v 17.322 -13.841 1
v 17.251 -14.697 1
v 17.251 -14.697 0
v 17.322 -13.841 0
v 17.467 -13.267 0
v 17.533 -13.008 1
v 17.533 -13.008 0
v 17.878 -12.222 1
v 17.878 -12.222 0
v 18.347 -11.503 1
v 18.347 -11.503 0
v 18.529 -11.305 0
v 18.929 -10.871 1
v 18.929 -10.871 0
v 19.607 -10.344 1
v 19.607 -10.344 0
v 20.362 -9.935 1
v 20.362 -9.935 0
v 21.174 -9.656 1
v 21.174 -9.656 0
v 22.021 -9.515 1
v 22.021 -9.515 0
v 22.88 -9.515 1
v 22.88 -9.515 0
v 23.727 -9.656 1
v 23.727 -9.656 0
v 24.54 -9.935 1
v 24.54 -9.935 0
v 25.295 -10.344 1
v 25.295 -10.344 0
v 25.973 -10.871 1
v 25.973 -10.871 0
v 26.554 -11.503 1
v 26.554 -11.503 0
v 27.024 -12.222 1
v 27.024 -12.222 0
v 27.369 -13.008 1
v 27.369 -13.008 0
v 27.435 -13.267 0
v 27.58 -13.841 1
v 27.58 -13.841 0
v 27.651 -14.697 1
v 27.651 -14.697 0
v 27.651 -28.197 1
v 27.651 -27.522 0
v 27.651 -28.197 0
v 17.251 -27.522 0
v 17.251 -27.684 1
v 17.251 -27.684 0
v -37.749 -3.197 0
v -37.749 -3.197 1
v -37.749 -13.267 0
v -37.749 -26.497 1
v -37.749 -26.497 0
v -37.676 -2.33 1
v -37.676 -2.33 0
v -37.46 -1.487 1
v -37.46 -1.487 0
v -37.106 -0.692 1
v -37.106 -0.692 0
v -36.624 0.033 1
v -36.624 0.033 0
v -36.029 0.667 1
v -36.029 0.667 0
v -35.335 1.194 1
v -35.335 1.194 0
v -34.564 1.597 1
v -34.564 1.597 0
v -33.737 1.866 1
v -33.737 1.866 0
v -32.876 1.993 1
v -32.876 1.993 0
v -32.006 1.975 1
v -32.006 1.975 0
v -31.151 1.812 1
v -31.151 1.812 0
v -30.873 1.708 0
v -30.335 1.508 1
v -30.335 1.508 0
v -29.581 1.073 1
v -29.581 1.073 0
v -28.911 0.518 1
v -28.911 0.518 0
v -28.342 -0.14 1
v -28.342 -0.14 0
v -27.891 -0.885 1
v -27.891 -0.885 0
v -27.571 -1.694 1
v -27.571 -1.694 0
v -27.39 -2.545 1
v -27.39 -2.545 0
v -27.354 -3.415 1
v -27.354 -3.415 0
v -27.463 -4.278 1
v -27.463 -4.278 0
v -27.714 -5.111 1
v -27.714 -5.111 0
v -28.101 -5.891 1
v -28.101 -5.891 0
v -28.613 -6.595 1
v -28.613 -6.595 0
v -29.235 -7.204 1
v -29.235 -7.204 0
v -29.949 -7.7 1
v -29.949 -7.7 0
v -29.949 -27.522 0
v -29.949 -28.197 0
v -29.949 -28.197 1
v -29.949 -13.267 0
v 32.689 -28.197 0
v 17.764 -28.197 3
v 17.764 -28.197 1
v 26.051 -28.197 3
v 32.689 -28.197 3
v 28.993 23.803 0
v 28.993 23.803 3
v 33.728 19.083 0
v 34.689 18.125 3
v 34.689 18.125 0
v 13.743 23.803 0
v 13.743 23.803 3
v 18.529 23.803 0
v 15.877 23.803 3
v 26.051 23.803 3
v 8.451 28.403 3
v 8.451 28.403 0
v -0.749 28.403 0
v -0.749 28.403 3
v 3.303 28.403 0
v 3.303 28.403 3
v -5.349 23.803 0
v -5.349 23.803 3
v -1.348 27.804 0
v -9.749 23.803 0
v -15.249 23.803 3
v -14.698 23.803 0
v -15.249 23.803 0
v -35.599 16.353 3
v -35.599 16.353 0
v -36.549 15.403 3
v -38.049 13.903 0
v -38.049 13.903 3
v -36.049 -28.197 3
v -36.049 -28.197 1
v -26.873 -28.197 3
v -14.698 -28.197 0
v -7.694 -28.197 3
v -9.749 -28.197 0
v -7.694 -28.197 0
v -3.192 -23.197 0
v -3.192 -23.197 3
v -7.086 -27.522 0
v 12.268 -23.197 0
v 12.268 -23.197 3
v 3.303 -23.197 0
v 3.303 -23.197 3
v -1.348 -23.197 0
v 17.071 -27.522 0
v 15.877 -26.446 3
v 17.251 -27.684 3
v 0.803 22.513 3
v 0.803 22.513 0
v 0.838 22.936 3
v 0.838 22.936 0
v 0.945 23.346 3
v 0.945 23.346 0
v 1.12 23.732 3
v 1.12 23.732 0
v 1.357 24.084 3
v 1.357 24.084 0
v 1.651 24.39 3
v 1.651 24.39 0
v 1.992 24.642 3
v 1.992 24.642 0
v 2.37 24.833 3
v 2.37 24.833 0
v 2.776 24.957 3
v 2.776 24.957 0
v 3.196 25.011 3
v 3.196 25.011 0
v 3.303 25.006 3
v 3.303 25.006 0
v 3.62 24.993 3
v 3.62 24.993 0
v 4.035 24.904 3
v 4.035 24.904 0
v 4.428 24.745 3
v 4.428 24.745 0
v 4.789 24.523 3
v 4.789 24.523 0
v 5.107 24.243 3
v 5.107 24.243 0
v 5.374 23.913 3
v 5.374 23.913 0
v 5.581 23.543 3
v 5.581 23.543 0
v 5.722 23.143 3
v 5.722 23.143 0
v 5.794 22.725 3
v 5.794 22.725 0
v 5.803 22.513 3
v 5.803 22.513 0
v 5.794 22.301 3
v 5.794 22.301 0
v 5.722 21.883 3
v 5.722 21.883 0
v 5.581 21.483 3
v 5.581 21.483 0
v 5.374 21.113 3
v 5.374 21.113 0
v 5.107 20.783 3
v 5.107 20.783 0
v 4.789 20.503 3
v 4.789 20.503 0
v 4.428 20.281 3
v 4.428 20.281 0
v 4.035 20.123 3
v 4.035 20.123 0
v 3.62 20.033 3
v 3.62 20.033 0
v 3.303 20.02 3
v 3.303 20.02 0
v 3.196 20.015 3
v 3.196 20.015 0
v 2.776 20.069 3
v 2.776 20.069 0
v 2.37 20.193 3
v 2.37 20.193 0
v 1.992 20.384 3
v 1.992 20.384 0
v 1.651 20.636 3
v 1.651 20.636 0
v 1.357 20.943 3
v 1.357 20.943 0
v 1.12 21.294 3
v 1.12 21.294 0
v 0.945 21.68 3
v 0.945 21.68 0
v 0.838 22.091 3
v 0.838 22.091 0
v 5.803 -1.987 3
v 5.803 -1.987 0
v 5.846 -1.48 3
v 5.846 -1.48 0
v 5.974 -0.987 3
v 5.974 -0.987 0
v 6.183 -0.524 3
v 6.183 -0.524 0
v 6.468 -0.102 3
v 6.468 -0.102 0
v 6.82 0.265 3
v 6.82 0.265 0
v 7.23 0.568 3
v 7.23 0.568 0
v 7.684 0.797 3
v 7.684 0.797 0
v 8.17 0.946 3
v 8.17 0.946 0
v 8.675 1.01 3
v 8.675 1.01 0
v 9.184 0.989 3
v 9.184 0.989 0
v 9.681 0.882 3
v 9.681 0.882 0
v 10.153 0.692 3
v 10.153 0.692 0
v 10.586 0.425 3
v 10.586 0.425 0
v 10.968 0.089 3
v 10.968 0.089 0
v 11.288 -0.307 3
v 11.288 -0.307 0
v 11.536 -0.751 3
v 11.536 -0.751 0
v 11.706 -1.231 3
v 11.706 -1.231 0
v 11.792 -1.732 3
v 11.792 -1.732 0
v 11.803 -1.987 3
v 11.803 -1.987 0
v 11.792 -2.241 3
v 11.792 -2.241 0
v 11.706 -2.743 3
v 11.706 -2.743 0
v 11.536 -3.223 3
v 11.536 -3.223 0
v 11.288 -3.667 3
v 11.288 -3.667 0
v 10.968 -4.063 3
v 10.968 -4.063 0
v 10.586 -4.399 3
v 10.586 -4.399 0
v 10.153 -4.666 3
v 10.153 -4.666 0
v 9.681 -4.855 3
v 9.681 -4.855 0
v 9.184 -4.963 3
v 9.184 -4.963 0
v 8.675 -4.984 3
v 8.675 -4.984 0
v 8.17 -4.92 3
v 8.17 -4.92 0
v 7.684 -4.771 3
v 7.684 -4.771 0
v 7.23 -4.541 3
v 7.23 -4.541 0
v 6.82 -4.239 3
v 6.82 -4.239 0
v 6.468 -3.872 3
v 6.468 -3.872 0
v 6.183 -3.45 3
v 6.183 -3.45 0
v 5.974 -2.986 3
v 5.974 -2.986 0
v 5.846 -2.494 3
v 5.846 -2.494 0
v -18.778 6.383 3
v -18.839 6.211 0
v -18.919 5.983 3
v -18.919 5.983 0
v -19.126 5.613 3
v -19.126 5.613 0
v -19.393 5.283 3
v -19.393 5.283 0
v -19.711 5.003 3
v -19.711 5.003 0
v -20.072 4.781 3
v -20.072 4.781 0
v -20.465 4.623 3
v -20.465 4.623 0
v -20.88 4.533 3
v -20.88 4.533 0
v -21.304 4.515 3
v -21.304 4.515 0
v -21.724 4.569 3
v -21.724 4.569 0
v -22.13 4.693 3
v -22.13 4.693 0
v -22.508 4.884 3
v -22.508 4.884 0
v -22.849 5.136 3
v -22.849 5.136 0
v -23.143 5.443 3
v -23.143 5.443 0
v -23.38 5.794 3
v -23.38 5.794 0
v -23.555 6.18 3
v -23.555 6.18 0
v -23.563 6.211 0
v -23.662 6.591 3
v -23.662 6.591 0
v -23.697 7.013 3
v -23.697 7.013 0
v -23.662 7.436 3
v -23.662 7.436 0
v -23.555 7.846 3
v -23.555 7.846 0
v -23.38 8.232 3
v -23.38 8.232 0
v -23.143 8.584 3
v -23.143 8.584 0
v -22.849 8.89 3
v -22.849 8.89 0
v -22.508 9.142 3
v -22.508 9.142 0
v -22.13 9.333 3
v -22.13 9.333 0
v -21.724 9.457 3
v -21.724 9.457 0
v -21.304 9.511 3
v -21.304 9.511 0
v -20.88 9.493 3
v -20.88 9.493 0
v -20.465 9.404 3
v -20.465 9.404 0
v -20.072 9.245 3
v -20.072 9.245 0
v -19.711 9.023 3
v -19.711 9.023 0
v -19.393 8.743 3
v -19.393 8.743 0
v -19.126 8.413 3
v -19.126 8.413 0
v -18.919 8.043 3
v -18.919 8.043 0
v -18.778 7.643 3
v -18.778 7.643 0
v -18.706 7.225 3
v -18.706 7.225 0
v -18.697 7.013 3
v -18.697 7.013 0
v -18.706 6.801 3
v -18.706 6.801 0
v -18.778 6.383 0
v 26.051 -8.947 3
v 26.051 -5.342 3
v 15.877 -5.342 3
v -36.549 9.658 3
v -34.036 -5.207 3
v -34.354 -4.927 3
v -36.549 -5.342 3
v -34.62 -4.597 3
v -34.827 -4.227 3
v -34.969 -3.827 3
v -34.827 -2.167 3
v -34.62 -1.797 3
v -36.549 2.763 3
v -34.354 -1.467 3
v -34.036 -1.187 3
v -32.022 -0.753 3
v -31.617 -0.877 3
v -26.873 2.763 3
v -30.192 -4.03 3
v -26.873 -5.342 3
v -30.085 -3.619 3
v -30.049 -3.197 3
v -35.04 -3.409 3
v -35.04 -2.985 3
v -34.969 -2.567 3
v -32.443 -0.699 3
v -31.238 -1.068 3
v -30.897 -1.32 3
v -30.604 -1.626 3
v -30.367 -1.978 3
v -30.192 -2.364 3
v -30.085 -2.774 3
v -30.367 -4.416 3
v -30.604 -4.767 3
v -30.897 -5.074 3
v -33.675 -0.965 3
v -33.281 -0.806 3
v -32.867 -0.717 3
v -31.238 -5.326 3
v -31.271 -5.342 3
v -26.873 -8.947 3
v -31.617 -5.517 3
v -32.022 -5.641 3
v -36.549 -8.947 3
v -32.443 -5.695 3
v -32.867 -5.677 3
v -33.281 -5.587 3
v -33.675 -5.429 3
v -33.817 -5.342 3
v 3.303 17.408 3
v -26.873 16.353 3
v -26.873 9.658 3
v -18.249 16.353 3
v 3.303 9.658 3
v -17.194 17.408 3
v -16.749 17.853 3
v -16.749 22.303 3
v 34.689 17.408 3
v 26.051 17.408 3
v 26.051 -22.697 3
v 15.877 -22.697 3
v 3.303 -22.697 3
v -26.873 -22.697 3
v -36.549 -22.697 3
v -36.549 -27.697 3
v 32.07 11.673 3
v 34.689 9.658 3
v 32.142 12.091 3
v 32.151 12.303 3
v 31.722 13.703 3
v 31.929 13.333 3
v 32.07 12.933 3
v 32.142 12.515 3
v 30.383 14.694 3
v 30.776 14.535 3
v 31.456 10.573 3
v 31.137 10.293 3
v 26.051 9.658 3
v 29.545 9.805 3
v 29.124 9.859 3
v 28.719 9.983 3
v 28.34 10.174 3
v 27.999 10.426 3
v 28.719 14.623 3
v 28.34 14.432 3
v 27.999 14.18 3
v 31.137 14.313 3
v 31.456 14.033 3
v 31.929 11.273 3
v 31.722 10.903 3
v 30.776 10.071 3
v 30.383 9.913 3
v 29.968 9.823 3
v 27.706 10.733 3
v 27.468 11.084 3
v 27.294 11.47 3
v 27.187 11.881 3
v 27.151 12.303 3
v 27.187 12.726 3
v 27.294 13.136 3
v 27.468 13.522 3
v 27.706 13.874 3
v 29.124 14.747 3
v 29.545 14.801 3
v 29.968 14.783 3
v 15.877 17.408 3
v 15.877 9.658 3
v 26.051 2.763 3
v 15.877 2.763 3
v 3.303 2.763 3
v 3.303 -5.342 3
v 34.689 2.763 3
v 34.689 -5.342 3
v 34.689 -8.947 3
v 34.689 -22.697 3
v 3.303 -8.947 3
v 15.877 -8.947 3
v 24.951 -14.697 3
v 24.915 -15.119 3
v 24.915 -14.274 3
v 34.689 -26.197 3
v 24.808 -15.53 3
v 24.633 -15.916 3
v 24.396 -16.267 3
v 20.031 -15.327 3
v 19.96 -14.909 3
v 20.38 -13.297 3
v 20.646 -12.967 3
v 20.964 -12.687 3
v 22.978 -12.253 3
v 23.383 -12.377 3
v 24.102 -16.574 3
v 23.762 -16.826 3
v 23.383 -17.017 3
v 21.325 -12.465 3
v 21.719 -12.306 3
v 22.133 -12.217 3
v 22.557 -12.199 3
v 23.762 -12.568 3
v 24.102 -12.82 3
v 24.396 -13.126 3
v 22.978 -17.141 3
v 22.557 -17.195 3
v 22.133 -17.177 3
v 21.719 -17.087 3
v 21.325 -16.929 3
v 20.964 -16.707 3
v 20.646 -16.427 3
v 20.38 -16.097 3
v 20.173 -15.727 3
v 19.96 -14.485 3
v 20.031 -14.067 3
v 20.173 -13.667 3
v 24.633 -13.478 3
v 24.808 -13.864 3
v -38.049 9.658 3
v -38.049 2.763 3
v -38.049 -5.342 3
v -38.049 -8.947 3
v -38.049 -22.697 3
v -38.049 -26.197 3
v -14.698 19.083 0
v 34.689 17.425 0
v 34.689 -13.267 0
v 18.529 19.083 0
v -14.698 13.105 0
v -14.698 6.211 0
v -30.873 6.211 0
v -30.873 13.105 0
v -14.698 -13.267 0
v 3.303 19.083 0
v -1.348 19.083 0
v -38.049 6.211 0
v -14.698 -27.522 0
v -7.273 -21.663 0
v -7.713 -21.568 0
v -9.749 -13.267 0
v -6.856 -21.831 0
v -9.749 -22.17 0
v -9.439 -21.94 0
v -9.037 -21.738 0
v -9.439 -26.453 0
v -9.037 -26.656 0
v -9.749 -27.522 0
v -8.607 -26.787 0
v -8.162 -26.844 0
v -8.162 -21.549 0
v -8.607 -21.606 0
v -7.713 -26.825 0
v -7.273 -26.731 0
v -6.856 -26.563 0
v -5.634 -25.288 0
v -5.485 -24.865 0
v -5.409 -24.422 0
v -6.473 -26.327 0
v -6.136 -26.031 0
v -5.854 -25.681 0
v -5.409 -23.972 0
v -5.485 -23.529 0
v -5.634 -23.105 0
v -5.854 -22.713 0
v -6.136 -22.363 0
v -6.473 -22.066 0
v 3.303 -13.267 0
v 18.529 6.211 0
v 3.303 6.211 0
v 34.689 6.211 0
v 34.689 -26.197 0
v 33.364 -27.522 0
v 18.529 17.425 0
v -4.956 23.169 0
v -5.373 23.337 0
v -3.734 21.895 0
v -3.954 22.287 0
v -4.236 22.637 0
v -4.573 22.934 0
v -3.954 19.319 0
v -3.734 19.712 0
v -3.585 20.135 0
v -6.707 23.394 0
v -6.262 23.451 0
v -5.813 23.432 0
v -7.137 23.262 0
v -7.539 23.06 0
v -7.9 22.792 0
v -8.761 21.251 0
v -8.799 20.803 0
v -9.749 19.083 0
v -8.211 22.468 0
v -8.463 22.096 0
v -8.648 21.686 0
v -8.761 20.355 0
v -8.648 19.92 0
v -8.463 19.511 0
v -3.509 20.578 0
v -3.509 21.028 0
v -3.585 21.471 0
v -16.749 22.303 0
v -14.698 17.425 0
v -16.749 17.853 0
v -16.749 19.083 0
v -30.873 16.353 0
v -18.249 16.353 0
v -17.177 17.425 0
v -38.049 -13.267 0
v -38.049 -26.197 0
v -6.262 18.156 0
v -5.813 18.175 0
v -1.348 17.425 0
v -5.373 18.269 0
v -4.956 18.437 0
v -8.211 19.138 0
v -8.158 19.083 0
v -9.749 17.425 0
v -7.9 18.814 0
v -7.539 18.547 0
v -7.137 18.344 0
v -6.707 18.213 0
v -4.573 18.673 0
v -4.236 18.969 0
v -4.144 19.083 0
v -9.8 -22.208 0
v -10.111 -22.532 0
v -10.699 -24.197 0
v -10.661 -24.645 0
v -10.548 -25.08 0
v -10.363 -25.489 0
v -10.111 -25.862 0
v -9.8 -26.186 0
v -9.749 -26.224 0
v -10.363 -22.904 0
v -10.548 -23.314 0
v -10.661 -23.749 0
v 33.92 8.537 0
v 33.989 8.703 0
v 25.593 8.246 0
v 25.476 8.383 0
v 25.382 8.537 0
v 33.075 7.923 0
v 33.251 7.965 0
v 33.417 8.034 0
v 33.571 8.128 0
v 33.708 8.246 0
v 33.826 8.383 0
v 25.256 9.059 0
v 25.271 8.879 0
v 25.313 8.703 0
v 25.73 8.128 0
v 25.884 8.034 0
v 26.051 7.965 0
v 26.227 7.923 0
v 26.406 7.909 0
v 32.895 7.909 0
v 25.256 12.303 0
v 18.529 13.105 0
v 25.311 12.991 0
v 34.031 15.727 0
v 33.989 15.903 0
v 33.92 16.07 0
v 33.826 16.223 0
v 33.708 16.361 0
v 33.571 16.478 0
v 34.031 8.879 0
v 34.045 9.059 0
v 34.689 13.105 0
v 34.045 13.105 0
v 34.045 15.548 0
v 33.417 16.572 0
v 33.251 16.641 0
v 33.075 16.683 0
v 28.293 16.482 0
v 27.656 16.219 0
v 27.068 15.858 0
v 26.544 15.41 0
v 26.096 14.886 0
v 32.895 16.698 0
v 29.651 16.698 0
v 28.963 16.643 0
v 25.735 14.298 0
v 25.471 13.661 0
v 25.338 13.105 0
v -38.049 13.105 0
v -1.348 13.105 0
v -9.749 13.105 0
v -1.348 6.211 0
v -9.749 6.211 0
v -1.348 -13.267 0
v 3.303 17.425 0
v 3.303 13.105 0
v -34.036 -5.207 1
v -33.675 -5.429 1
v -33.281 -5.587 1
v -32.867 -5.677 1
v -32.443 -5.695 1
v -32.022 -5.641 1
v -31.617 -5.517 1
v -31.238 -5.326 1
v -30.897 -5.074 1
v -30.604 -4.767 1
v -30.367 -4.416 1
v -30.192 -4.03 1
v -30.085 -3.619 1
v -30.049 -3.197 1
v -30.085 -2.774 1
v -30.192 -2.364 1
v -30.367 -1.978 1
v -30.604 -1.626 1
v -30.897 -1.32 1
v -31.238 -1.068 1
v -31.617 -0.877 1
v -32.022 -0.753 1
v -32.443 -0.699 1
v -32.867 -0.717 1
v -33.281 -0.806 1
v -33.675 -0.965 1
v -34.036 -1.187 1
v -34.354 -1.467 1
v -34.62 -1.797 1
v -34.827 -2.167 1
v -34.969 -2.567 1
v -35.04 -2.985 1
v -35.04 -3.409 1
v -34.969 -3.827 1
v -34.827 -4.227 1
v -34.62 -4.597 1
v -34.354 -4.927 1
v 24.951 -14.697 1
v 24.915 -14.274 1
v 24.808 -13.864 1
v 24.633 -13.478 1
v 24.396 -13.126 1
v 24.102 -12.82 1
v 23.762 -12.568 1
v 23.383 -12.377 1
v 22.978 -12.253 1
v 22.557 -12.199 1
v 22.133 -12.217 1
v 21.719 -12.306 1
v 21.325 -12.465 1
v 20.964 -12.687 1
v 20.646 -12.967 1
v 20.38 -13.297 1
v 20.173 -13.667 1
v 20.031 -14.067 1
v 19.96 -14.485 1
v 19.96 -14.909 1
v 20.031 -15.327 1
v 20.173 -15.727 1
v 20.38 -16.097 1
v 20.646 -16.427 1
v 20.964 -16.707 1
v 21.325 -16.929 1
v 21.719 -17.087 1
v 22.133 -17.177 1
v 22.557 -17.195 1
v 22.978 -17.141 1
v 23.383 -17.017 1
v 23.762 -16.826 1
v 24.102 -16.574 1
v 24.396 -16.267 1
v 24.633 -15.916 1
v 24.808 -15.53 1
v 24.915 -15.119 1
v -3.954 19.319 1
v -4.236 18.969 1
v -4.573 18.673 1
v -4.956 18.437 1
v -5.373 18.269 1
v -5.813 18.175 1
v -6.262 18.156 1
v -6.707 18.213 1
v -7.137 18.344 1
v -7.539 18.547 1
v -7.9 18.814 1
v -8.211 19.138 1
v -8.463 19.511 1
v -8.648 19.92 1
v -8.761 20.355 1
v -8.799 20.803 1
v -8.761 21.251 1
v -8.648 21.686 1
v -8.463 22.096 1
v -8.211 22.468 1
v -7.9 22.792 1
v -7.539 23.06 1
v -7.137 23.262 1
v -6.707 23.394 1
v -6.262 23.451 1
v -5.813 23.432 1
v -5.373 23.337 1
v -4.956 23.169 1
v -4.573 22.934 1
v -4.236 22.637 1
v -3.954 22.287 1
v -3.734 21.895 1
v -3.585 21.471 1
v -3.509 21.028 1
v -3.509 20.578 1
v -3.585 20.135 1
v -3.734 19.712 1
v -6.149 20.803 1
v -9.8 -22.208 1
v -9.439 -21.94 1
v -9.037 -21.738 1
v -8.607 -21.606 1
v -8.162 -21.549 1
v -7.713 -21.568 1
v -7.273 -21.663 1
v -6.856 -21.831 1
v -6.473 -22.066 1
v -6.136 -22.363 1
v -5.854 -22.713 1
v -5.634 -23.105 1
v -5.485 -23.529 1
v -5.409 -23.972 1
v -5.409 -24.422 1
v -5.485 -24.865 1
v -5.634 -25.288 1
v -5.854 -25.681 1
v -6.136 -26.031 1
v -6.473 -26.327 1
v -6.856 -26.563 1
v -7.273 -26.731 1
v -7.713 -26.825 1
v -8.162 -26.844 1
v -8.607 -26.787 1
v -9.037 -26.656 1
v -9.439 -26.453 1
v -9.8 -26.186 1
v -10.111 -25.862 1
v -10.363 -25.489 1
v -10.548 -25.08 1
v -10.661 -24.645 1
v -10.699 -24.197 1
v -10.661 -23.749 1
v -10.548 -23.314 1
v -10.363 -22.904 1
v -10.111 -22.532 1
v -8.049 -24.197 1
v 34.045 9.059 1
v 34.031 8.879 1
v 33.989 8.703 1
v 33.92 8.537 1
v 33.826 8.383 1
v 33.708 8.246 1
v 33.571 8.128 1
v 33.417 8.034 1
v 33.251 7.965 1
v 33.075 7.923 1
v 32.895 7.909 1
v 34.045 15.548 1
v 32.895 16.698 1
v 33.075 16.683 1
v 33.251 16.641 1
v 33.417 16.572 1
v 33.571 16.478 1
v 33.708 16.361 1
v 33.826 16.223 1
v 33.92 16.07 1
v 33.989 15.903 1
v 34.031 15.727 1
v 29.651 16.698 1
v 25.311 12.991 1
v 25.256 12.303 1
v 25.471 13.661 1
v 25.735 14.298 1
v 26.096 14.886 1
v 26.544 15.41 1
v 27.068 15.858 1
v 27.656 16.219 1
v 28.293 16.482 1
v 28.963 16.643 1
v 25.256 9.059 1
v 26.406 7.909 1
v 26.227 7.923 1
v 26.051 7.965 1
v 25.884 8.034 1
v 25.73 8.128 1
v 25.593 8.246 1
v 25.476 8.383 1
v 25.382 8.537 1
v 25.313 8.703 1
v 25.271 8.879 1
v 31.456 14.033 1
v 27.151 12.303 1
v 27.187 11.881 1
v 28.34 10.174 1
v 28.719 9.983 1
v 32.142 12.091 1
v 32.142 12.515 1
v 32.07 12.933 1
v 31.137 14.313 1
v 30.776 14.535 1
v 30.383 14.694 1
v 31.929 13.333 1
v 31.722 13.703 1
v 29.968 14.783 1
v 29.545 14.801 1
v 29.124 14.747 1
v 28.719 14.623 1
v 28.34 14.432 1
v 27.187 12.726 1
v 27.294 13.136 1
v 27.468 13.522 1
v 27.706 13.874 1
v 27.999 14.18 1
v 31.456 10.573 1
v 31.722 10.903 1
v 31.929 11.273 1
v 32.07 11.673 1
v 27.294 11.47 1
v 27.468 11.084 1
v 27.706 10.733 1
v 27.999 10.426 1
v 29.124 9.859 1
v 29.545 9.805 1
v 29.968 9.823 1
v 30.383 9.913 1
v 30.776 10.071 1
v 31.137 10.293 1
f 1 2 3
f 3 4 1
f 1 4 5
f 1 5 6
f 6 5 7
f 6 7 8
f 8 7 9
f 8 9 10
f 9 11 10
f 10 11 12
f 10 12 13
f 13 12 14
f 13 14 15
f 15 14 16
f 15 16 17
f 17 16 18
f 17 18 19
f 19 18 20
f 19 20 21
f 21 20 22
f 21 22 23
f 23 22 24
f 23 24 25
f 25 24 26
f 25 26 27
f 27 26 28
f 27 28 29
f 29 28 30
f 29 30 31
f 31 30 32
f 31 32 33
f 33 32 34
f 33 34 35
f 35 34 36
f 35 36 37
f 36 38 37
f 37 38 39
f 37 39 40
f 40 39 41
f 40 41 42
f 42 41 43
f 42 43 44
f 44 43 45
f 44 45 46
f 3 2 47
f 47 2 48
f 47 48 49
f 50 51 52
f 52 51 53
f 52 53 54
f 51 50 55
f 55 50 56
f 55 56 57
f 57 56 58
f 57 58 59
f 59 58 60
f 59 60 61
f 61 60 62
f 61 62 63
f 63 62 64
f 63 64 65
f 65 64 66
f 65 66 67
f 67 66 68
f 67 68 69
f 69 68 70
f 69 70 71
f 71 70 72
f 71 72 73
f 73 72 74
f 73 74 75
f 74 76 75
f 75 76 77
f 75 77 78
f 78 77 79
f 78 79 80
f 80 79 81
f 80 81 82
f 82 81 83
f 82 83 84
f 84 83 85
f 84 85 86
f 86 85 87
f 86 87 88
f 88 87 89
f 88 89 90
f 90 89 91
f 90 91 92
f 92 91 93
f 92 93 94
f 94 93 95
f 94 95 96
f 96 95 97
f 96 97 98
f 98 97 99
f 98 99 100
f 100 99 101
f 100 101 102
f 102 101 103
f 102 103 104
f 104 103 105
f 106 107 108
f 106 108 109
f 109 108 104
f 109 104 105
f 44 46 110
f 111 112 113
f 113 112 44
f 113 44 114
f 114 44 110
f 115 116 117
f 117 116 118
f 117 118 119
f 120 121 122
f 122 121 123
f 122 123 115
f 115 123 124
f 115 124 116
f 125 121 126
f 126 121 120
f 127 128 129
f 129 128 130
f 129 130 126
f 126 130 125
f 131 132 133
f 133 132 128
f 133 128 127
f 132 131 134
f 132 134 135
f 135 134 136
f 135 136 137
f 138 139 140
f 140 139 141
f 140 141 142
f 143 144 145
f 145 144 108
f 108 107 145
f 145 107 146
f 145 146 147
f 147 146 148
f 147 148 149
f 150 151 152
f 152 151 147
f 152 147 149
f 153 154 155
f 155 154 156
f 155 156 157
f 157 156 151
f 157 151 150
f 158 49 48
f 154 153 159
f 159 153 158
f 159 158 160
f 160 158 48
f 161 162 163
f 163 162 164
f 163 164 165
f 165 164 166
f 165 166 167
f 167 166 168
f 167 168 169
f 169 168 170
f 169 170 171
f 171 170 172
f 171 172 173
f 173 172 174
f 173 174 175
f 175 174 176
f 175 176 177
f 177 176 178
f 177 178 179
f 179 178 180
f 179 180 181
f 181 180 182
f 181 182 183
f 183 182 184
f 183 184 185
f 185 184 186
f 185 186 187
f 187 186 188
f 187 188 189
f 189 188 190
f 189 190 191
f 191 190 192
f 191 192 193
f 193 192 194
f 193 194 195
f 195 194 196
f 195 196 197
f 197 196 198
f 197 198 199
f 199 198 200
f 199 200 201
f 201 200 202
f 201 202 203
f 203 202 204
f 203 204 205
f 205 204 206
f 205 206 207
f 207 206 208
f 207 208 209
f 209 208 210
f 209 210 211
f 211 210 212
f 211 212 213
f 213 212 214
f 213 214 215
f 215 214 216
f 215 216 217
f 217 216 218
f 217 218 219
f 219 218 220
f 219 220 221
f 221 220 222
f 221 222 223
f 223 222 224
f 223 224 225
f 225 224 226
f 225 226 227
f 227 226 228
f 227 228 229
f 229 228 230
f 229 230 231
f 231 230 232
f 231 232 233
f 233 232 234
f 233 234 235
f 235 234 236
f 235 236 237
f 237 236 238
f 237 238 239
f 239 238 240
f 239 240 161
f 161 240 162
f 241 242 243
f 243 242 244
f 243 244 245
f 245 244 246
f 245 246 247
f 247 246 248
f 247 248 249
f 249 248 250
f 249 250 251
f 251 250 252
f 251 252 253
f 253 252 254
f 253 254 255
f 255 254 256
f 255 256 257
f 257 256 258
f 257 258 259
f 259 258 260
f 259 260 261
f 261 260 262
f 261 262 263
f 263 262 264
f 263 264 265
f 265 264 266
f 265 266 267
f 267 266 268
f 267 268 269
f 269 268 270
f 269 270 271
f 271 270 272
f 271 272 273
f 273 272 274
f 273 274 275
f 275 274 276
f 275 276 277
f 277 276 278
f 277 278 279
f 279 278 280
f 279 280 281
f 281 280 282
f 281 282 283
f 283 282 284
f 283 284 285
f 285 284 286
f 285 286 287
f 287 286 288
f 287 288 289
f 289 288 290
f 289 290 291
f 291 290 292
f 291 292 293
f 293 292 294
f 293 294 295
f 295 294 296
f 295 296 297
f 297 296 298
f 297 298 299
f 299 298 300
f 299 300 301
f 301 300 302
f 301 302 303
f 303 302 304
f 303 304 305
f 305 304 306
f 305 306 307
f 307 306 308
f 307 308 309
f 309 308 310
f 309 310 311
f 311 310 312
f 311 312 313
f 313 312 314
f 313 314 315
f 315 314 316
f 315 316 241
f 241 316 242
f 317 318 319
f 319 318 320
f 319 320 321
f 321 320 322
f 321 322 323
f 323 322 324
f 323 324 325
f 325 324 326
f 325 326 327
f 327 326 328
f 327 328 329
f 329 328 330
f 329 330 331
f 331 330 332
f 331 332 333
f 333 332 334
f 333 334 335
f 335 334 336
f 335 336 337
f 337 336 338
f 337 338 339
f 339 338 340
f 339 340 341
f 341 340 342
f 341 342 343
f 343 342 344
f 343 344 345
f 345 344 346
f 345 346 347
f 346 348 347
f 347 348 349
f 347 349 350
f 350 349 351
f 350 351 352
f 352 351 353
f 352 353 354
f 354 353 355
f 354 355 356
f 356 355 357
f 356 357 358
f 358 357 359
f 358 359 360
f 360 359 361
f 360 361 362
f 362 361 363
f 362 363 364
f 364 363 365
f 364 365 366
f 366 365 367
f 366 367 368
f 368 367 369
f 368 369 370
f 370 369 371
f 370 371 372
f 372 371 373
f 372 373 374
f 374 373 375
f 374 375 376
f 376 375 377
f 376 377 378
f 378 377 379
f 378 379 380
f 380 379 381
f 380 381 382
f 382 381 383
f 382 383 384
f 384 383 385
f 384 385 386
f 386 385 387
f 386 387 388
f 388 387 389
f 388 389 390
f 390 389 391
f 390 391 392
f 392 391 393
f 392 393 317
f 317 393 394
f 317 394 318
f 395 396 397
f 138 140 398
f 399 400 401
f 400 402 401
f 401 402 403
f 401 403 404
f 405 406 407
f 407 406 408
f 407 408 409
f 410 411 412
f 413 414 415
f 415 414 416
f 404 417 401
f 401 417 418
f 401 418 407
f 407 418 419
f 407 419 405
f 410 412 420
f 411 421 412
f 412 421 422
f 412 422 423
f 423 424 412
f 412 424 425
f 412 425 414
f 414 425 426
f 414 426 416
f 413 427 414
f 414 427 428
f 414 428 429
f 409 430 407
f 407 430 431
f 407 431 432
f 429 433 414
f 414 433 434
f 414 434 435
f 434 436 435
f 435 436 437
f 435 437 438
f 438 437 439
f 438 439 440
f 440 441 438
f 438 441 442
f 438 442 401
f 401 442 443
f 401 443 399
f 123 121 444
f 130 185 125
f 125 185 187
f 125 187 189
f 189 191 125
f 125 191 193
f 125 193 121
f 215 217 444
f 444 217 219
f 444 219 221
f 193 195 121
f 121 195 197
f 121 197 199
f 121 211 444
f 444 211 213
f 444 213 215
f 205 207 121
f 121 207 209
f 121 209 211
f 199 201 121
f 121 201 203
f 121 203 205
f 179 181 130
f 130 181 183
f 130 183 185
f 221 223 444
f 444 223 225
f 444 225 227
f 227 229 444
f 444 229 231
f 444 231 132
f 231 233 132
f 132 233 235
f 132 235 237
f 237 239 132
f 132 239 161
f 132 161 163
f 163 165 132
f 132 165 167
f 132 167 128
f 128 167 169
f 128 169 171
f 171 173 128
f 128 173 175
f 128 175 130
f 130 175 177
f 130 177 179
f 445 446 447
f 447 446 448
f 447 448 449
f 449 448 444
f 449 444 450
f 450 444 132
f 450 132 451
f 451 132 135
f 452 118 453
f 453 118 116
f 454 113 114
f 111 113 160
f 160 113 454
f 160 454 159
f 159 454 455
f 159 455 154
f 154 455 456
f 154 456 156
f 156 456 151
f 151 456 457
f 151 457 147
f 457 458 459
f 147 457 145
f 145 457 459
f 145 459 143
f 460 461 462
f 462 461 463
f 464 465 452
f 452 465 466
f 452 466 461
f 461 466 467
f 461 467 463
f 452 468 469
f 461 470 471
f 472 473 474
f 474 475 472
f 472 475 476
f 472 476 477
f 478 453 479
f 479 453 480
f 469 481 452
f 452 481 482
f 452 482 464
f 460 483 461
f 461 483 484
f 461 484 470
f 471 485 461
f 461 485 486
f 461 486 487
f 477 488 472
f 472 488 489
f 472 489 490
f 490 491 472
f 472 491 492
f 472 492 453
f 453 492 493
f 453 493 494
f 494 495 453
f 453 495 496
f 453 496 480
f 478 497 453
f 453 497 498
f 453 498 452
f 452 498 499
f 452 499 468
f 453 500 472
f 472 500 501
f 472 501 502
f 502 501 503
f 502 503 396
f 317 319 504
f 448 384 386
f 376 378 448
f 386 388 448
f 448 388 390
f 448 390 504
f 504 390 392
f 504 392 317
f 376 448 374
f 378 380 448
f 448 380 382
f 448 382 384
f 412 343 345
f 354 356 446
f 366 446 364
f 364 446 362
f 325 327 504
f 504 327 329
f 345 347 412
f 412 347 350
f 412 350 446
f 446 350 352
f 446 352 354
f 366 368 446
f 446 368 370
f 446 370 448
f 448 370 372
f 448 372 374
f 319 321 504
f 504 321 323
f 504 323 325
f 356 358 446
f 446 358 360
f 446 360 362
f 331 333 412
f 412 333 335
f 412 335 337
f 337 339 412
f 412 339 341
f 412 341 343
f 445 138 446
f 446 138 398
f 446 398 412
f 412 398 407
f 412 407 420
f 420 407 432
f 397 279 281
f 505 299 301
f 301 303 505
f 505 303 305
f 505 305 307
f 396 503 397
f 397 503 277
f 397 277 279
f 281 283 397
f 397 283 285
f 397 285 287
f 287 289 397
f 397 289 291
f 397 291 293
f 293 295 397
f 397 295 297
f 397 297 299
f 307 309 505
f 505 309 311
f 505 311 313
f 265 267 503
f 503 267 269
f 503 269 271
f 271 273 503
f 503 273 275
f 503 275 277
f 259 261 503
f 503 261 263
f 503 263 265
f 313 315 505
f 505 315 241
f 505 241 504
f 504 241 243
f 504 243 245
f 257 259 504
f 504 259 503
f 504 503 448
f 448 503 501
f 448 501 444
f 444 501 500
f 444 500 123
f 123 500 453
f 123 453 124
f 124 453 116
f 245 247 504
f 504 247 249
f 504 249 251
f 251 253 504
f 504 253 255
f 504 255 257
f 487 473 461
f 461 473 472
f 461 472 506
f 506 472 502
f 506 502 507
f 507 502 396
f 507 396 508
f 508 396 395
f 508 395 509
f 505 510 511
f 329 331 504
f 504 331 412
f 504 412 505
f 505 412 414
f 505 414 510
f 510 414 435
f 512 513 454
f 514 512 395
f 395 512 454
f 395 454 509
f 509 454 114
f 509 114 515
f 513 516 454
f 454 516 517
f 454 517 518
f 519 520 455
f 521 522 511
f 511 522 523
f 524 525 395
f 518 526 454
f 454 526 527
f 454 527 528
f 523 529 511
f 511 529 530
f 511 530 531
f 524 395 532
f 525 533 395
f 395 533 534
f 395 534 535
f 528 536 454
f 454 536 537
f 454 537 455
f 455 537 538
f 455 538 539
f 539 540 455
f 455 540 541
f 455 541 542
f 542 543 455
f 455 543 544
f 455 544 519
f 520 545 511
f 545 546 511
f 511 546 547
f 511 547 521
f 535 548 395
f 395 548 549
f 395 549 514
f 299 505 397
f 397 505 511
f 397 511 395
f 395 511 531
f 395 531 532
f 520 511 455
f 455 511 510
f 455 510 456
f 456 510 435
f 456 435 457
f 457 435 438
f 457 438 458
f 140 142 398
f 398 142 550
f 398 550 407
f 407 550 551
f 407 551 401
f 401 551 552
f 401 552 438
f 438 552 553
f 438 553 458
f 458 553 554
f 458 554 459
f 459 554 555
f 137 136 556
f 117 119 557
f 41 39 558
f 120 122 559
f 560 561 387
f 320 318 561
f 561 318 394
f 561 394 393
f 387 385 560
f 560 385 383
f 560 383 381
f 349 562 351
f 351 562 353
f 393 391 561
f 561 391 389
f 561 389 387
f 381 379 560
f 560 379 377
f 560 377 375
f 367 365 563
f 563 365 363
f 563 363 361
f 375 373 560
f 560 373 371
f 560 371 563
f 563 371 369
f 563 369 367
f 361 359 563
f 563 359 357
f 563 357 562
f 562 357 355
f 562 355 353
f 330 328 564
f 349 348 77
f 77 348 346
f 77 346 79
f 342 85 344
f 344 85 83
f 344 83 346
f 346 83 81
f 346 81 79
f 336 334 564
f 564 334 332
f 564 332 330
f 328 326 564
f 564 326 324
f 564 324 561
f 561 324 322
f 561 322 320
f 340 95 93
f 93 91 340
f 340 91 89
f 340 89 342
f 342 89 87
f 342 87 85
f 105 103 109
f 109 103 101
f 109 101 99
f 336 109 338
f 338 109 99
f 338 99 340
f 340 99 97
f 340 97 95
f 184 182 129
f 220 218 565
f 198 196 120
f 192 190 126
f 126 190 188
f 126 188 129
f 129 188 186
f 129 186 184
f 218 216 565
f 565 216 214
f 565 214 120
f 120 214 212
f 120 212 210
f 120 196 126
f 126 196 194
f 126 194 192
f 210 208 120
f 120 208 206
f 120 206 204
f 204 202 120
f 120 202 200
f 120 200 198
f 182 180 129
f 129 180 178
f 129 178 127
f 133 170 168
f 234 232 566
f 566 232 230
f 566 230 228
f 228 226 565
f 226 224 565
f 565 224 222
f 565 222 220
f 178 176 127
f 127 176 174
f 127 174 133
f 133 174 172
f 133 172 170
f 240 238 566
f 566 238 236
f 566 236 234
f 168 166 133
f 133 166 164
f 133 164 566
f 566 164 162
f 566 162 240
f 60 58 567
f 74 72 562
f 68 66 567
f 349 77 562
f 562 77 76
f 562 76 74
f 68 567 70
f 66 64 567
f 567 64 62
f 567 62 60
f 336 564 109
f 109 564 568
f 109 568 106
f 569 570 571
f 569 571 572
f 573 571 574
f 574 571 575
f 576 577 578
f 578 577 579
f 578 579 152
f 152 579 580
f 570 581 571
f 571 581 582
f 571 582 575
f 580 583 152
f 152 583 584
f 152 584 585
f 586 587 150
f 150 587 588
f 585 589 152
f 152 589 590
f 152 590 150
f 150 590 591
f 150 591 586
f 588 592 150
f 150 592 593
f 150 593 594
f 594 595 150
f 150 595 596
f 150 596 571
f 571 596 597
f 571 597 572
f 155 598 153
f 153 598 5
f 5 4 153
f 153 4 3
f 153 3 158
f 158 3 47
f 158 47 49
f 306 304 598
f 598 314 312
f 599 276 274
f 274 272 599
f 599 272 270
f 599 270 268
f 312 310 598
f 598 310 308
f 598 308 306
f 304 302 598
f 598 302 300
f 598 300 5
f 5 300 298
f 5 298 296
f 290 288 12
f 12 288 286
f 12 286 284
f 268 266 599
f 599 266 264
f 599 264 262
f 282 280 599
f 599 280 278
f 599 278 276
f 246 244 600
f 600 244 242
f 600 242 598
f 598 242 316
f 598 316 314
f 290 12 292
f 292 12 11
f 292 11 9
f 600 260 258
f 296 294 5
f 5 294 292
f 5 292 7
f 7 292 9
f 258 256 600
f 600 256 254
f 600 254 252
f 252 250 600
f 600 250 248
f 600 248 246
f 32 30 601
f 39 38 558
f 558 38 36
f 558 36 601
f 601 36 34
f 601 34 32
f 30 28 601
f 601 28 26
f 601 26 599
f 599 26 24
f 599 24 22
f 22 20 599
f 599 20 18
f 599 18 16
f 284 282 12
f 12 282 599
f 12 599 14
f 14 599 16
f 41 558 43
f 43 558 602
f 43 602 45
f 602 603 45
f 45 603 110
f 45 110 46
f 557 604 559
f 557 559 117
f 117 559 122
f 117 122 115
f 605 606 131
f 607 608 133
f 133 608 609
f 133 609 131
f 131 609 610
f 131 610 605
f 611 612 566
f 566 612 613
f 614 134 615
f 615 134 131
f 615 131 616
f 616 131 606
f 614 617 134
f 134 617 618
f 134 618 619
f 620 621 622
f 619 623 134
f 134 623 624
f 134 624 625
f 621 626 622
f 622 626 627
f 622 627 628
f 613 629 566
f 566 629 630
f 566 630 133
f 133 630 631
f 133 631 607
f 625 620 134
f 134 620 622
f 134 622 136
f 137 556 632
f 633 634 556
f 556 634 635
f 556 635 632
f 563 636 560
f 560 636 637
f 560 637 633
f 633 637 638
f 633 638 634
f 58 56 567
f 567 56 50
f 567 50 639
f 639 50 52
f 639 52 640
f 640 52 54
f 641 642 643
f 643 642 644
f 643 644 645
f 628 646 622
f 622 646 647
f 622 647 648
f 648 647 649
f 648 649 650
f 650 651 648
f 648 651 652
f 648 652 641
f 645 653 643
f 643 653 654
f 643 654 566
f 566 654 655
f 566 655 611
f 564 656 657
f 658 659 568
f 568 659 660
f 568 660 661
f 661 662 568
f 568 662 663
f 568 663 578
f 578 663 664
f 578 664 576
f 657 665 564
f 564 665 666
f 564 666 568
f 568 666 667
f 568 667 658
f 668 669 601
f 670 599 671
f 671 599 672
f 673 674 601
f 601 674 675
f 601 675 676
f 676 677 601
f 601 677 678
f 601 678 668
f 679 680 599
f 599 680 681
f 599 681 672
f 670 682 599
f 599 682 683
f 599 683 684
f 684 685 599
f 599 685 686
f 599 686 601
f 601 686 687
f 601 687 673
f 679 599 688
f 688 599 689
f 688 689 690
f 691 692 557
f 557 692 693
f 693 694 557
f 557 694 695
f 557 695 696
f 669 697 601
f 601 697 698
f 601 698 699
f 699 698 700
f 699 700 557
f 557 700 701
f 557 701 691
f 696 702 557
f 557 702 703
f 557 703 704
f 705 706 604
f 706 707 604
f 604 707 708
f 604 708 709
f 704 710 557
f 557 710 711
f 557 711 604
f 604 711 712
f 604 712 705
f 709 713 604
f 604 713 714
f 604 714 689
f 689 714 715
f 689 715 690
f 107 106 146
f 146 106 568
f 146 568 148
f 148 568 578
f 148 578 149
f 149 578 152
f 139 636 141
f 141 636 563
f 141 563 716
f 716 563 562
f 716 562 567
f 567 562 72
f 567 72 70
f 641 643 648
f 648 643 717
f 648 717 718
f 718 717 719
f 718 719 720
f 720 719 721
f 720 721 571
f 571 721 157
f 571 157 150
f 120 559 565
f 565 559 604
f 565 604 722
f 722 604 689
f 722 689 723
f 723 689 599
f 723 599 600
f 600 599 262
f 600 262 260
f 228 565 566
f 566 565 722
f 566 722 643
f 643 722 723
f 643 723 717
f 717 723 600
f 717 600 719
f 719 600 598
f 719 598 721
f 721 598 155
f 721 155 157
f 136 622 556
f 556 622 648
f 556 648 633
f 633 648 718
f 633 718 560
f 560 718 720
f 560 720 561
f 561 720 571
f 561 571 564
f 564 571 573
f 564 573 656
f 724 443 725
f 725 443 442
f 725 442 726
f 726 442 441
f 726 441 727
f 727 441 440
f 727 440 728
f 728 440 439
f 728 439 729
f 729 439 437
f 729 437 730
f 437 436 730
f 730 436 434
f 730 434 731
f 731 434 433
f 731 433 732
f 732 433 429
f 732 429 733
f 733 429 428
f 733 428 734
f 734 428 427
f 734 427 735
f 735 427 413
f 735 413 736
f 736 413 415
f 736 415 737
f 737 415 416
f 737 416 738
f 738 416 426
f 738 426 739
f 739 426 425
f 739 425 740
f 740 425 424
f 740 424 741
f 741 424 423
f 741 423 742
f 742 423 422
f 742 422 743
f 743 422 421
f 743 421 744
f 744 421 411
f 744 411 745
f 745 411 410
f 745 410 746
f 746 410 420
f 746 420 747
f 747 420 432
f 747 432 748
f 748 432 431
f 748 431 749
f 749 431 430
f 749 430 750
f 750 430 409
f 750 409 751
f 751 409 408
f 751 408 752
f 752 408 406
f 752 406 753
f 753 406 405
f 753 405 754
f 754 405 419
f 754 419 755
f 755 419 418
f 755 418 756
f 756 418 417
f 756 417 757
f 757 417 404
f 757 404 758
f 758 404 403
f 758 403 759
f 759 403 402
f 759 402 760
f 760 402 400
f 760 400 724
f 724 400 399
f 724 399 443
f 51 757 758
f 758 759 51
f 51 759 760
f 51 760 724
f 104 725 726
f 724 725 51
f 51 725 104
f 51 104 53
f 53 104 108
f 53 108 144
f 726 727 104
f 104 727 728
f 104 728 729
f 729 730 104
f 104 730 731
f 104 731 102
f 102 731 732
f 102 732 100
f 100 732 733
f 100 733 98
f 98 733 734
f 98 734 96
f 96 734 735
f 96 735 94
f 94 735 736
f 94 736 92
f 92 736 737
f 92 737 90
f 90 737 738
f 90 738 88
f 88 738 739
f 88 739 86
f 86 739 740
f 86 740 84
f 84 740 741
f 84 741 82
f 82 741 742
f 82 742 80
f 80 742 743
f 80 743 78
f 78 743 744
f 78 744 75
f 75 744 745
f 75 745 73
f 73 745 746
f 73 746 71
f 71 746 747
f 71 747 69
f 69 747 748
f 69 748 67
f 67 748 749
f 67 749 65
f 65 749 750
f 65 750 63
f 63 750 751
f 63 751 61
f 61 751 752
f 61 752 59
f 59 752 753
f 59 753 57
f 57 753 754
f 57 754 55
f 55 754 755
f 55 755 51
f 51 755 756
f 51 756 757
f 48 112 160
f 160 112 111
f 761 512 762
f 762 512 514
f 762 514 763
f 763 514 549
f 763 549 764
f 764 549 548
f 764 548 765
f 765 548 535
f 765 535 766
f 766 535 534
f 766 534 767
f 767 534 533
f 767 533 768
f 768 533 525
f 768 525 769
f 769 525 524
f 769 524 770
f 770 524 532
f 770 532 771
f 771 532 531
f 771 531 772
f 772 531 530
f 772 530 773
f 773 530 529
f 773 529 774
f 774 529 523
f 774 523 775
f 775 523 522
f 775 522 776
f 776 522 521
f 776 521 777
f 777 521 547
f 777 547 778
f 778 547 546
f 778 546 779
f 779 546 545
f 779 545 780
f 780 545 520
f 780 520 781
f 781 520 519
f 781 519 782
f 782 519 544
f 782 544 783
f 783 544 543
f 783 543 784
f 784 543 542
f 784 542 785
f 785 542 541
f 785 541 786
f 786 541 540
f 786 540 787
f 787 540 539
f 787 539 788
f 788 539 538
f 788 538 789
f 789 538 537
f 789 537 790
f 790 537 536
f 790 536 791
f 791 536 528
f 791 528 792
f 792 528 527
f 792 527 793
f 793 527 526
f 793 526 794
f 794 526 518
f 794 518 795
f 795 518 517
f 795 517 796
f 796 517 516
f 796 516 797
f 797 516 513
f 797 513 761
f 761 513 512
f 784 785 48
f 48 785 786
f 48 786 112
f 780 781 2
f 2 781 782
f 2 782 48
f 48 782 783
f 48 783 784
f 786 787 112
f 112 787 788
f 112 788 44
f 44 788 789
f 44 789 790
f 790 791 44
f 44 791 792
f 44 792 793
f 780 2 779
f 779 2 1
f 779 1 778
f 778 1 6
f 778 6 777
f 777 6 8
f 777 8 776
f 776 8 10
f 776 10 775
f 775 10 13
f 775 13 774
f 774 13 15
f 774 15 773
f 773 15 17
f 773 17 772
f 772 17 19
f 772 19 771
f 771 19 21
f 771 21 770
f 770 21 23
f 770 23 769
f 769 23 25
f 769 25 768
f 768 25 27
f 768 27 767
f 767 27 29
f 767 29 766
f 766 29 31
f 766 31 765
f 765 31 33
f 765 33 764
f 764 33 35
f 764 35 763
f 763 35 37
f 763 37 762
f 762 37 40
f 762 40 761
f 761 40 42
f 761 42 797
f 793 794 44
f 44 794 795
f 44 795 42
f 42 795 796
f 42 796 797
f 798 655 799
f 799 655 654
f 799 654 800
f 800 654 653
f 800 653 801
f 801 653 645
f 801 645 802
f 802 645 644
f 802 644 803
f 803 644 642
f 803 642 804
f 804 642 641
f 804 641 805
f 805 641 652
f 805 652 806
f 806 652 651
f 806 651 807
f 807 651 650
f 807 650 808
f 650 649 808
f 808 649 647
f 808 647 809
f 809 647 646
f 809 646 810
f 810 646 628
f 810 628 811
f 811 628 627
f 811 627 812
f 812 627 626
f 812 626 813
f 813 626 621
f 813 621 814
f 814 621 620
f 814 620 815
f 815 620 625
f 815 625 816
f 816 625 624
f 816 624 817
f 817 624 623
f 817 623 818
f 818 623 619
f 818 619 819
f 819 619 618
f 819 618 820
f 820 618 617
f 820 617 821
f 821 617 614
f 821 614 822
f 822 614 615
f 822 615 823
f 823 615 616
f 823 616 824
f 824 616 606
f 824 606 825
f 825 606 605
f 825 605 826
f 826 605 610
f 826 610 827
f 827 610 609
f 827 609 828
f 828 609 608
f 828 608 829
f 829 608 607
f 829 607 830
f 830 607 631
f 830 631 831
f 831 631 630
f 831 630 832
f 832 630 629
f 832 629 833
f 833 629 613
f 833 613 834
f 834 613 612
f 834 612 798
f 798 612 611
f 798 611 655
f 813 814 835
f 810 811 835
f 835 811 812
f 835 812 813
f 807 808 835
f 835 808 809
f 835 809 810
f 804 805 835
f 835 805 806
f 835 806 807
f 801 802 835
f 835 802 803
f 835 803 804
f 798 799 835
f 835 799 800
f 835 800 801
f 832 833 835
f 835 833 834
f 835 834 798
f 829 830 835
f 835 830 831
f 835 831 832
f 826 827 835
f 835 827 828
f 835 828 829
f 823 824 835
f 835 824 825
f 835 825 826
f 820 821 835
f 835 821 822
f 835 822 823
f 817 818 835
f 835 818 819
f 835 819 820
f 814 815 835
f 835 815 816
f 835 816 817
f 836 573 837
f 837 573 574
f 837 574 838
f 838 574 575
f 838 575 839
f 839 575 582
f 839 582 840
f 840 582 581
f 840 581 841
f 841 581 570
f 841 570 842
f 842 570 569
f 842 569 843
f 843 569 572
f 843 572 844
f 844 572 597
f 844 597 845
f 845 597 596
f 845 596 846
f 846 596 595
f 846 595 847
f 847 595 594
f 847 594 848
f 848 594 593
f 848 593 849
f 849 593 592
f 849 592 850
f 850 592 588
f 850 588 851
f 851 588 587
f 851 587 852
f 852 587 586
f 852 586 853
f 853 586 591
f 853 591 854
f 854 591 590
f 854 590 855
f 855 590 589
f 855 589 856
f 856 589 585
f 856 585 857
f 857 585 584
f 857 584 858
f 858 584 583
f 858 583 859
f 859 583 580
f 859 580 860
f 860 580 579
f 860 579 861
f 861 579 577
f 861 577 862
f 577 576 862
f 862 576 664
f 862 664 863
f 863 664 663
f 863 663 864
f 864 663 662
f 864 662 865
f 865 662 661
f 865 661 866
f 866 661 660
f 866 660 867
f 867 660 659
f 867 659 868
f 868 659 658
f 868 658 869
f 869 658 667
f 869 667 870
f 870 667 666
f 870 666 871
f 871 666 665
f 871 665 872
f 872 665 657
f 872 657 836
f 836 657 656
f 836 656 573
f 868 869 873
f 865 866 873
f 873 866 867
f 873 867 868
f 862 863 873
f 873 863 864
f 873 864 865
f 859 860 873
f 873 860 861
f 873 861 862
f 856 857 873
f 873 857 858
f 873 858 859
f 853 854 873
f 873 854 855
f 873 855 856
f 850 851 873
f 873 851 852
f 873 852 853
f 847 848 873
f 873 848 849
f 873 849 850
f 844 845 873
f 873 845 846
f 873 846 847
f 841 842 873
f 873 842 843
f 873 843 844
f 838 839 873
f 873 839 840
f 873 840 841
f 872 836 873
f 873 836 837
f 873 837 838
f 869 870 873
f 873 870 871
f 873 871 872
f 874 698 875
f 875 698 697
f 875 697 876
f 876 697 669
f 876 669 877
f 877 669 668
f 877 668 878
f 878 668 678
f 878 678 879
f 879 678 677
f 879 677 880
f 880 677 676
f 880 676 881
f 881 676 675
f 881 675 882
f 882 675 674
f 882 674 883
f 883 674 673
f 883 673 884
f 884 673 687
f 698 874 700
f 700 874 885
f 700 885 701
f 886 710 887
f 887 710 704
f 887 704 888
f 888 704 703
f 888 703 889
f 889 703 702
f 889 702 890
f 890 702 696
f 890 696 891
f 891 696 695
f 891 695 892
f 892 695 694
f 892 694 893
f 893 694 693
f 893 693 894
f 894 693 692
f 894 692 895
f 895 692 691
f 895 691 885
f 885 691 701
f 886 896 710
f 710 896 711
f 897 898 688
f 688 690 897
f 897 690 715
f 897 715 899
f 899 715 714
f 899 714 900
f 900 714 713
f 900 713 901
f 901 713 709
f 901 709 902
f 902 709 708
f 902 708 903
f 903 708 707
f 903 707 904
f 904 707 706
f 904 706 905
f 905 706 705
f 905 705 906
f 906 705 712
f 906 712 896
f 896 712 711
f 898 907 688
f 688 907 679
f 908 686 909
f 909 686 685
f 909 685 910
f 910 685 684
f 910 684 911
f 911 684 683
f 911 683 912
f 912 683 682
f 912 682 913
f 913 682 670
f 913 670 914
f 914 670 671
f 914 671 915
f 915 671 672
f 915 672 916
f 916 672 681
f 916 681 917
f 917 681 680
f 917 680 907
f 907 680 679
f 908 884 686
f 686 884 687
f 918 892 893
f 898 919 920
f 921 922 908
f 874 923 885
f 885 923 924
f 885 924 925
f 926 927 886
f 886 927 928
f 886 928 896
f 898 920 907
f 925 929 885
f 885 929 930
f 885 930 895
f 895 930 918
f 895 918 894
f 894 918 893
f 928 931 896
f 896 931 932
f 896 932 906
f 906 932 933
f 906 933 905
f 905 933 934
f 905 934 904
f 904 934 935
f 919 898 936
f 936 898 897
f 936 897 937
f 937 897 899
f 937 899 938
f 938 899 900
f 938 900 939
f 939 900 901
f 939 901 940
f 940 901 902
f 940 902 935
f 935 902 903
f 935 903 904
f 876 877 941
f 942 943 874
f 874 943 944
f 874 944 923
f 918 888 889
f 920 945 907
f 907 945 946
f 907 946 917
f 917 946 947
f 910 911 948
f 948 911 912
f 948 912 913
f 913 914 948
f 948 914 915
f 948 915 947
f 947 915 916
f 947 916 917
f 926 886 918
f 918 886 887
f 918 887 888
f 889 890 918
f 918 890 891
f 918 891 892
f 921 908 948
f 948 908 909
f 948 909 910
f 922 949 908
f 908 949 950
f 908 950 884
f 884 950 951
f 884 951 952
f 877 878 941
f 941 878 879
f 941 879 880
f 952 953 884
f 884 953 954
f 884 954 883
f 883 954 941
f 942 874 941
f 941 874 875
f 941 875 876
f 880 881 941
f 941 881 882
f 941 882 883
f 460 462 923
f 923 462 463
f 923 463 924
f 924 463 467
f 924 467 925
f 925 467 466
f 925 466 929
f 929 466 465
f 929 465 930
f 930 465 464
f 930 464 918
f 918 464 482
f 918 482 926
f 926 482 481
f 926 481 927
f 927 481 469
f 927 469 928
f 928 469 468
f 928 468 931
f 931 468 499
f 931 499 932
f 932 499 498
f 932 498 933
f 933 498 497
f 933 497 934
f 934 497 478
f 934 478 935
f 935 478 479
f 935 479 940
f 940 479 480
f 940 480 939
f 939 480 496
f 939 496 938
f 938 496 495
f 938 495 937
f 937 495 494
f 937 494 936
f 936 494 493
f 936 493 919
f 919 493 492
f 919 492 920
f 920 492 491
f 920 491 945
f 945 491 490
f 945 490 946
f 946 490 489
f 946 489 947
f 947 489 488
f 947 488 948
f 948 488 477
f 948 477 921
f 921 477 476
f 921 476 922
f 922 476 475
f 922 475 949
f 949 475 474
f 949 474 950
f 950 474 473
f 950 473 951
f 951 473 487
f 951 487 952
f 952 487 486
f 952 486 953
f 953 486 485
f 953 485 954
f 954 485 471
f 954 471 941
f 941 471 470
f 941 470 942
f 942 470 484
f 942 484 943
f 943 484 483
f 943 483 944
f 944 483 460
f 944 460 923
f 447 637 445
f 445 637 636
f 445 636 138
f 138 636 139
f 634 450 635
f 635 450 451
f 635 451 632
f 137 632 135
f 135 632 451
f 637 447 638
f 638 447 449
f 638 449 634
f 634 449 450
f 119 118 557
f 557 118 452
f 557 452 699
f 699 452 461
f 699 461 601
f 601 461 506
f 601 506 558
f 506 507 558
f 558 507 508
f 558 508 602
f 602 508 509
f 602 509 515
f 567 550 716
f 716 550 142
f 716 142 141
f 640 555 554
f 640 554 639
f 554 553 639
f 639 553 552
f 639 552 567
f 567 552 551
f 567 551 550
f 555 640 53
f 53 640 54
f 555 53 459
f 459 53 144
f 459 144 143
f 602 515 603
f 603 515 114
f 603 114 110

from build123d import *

# Parameters (mm, degrees)
SKETCH_1_R          = 3
SKETCH_1_R_2        = 2.5
EXTRUDE_1_DEPTH     = 3
EXTRUDE_START       = -2
SKETCH_3_R          = 2.5
EXTRUDE_3_DEPTH     = 2
SKETCH_7_R          = 2.65
CUT_EXTRUDE_1_DEPTH = 1
CHAMFER_1_SIZE      = 1
CUT_EXTRUDE_3_REACH = 53.614
SKETCH_10_R         = 2.5
CUT_EXTRUDE_4_REACH = 53.662
CHAMFER_2_SIZE      = 1.5
CUT_EXTRUDE_5_REACH = 53.662
CHAMFER_3_SIZE      = 2


with BuildPart() as part:
    # 스케치1 → 보스-돌출1 (new body)
    with BuildSketch(Plane.XY):
        with BuildLine():
            Line((-27.349187557, -28.196867314), (-7.694270353, -28.196867314))
            Line((-7.694270353, -28.196867314), (-3.192250131, -23.196867314))
            Line((-3.192250131, -23.196867314), (12.267749869, -23.196867314))
            Line((12.267749869, -23.196867314), (17.250812443, -27.683637009))
            Line((17.250812443, -27.683637009), (17.250812443, -14.696867314))
            ThreePointArc((17.250812443, -14.696867314), (22.450812443, -9.496867314), (27.650812443, -14.696867314))
            Line((27.650812443, -14.696867314), (27.650812443, -28.196867314))
            Line((27.650812443, -28.196867314), (40.650812443, -28.196867314))
            Line((40.650812443, -28.196867314), (40.650812443, 12.183132686))
            Line((40.650812443, 12.183132686), (28.992507116, 23.803132686))
            Line((28.992507116, 23.803132686), (13.742507116, 23.803132686))
            Line((13.742507116, 23.803132686), (8.450812443, 28.403132686))
            Line((8.450812443, 28.403132686), (-0.749187557, 28.403132686))
            Line((-0.749187557, 28.403132686), (-5.349187557, 23.803132686))
            Line((-5.349187557, 23.803132686), (-28.149187557, 23.803132686))
            Line((-28.149187557, 23.803132686), (-43.049187557, 8.903132686))
            Line((-43.049187557, 8.903132686), (-43.049187557, -28.196867314))
            Line((-43.049187557, -28.196867314), (-37.749187557, -28.196867314))
            Line((-37.749187557, -28.196867314), (-37.749187557, -3.196867314))
            ThreePointArc((-37.749187557, -3.196867314), (-29.949187557, 1.306464785), (-29.949187557, -7.700199414))
            Line((-29.949187557, -7.700199414), (-29.949187557, -28.196867314))
            Line((-29.949187557, -28.196867314), (-27.349187557, -28.196867314))
        make_face()
        with Locations((8.802507116, -1.986867314)):
            Circle(SKETCH_1_R, mode=Mode.SUBTRACT)
        with Locations((-21.197492884, 7.013132686)):
            Circle(SKETCH_1_R_2, mode=Mode.SUBTRACT)
        with Locations((3.302507116, 22.513132686)):
            Circle(SKETCH_1_R_2, mode=Mode.SUBTRACT)
    extrude(amount=EXTRUDE_1_DEPTH)

    # 스케치3 → 보스-돌출3 (add)
    # profile 1 of 2: a face of its own
    with BuildSketch(Plane.XY.offset(3).offset(EXTRUDE_START)):
        with BuildLine():
            Line((27.650812443, -14.696867314), (27.650812443, -28.196867314))
            Line((27.650812443, -28.196867314), (17.764042748, -28.196867314))
            Line((17.764042748, -28.196867314), (17.250812443, -27.683637009))
            Line((17.250812443, -27.683637009), (17.250812443, -14.696867314))
            ThreePointArc((17.250812443, -14.696867314), (22.450812443, -9.496867314), (27.650812443, -14.696867314))
        make_face()
        with Locations((22.450812443, -14.696867314)):
            Circle(SKETCH_3_R, mode=Mode.SUBTRACT)
    # profile 2 of 2: a face of its own
    with BuildSketch(Plane.XY.offset(3).offset(EXTRUDE_START)):
        with BuildLine():
            Line((-29.949187557, -7.700199414), (-29.949187557, -28.196867314))
            Line((-29.949187557, -28.196867314), (-30.049187557, -28.196867314))
            Line((-30.049187557, -28.196867314), (-37.749187557, -28.196867314))
            Line((-37.749187557, -28.196867314), (-37.749187557, -3.196867314))
            ThreePointArc((-37.749187557, -3.196867314), (-29.949187557, 1.306464785), (-29.949187557, -7.700199414))
        make_face()
        with Locations((-32.549187557, -3.196867314)):
            Circle(SKETCH_3_R, mode=Mode.SUBTRACT)
    extrude(amount=EXTRUDE_3_DEPTH)

    # 스케치7 → 컷-돌출1 (cut)
    with BuildSketch(Plane(origin=(0, 0, 0), x_dir=(-1, 0, 0), z_dir=(0, 0, -1))):
        with Locations((6.149187557, 20.803132686)):
            Circle(SKETCH_7_R)
        with Locations((8.049187557, -24.196867314)):
            Circle(SKETCH_7_R)
        with BuildLine():
            Line((-26.406412787, 7.908733029), (-32.895212099, 7.908733029))
            ThreePointArc((-32.895212099, 7.908733029), (-33.708384897, 8.245560231), (-34.045212099, 9.058733029))
            Line((-34.045212099, 9.058733029), (-34.045212099, 15.547532342))
            ThreePointArc((-34.045212099, 15.547532342), (-33.708384897, 16.36070514), (-32.895212099, 16.697532342))
            Line((-32.895212099, 16.697532342), (-29.650812443, 16.697532342))
            ThreePointArc((-29.650812443, 16.697532342), (-26.543502647, 15.410442482), (-25.256412787, 12.303132686))
            Line((-25.256412787, 12.303132686), (-25.256412787, 9.058733029))
            ThreePointArc((-25.256412787, 9.058733029), (-25.593239988, 8.245560231), (-26.406412787, 7.908733029))
        make_face()
    extrude(amount=-CUT_EXTRUDE_1_DEPTH, mode=Mode.SUBTRACT)

    # 모따기1
    chamfer_1_edges = [part.edges().sort_by_distance(p)[0] for p in [
        (-43.049187557, -28.196867314, 1.5),
        (40.650812443, -28.196867314, 1.5),
    ]]
    chamfer(chamfer_1_edges, length=CHAMFER_1_SIZE)

    # 스케치10 → 컷-돌출3 (cut, up to next)
    with BuildSketch(Plane(origin=(0, 0, 1), x_dir=(-1, 0, 0), z_dir=(0, 0, -1)), mode=Mode.PRIVATE) as cut_extrude_3_sk1:
        with Locations((-29.650812443, 12.303132686)):
            Circle(SKETCH_10_R)
    cut_extrude_3_tool1 = extrude(cut_extrude_3_sk1.sketch, amount=-CUT_EXTRUDE_3_REACH, mode=Mode.PRIVATE) & part.part
    add(cut_extrude_3_tool1.solids().sort_by_distance((29.650812, 12.303133, 1))[0], mode=Mode.SUBTRACT)

    # 스케치12 → 컷-돌출4 (cut, up to next)
    with BuildSketch(Plane(origin=(0, 0, 0), x_dir=(-1, 0, 0), z_dir=(0, 0, -1)), mode=Mode.PRIVATE) as cut_extrude_4_sk1:
        Polygon((16.749187557, 23.803132686), (16.749187557, 16.353132686), (35.599187557, 16.353132686), (28.149187557, 23.803132686), align=None)
    cut_extrude_4_tool1 = extrude(cut_extrude_4_sk1.sketch, amount=-CUT_EXTRUDE_4_REACH, mode=Mode.PRIVATE) & part.part
    add(cut_extrude_4_tool1.solids().sort_by_distance((-24.464587, 19.772334, 0))[0], mode=Mode.SUBTRACT)

    # 모따기2
    chamfer_2_edges = [part.edges().sort_by_distance(p)[0] for p in [
        (-16.749187557, 23.803132686, 1.5),
        (-16.749187557, 16.353132686, 1.5),
    ]]
    chamfer(chamfer_2_edges, length=CHAMFER_2_SIZE)

    # 스케치13 → 컷-돌출5 (cut, up to next)
    with BuildSketch(Plane(origin=(0, 0, 0), x_dir=(-1, 0, 0), z_dir=(0, 0, -1)), mode=Mode.PRIVATE) as cut_extrude_5_sk1:
        Polygon((-34.689283113, 18.125074406), (-34.689283113, -28.196867314), (-39.650812443, -28.196867314), (-40.650812443, -27.196867314), (-40.650812443, 12.183132686), align=None)
    cut_extrude_5_tool1 = extrude(cut_extrude_5_sk1.sketch, amount=-CUT_EXTRUDE_5_REACH, mode=Mode.PRIVATE) & part.part
    # 스케치13 → 컷-돌출5 (cut, up to next)
    with BuildSketch(Plane(origin=(0, 0, 0), x_dir=(-1, 0, 0), z_dir=(0, 0, -1)), mode=Mode.PRIVATE) as cut_extrude_5_sk2:
        Polygon((38.049187557, 13.903132686), (43.049187557, 8.903132686), (43.049187557, -27.196867314), (42.049187557, -28.196867314), (38.049187557, -28.196867314), align=None)
    cut_extrude_5_tool2 = extrude(cut_extrude_5_sk2.sketch, amount=-CUT_EXTRUDE_5_REACH, mode=Mode.PRIVATE) & part.part
    add(cut_extrude_5_tool1.solids().sort_by_distance((37.59669, -6.446011, 0))[0], mode=Mode.SUBTRACT)
    add(cut_extrude_5_tool2.solids().sort_by_distance((-40.49096, -8.321213, 0))[0], mode=Mode.SUBTRACT)

    # 모따기3
    chamfer_3_edges = [part.edges().sort_by_distance(p)[0] for p in [
        (-38.049187557, -28.196867314, 1.5),
        (34.689283113, -28.196867314, 1.5),
    ]]
    chamfer(chamfer_3_edges, length=CHAMFER_3_SIZE)


solid = part.part
